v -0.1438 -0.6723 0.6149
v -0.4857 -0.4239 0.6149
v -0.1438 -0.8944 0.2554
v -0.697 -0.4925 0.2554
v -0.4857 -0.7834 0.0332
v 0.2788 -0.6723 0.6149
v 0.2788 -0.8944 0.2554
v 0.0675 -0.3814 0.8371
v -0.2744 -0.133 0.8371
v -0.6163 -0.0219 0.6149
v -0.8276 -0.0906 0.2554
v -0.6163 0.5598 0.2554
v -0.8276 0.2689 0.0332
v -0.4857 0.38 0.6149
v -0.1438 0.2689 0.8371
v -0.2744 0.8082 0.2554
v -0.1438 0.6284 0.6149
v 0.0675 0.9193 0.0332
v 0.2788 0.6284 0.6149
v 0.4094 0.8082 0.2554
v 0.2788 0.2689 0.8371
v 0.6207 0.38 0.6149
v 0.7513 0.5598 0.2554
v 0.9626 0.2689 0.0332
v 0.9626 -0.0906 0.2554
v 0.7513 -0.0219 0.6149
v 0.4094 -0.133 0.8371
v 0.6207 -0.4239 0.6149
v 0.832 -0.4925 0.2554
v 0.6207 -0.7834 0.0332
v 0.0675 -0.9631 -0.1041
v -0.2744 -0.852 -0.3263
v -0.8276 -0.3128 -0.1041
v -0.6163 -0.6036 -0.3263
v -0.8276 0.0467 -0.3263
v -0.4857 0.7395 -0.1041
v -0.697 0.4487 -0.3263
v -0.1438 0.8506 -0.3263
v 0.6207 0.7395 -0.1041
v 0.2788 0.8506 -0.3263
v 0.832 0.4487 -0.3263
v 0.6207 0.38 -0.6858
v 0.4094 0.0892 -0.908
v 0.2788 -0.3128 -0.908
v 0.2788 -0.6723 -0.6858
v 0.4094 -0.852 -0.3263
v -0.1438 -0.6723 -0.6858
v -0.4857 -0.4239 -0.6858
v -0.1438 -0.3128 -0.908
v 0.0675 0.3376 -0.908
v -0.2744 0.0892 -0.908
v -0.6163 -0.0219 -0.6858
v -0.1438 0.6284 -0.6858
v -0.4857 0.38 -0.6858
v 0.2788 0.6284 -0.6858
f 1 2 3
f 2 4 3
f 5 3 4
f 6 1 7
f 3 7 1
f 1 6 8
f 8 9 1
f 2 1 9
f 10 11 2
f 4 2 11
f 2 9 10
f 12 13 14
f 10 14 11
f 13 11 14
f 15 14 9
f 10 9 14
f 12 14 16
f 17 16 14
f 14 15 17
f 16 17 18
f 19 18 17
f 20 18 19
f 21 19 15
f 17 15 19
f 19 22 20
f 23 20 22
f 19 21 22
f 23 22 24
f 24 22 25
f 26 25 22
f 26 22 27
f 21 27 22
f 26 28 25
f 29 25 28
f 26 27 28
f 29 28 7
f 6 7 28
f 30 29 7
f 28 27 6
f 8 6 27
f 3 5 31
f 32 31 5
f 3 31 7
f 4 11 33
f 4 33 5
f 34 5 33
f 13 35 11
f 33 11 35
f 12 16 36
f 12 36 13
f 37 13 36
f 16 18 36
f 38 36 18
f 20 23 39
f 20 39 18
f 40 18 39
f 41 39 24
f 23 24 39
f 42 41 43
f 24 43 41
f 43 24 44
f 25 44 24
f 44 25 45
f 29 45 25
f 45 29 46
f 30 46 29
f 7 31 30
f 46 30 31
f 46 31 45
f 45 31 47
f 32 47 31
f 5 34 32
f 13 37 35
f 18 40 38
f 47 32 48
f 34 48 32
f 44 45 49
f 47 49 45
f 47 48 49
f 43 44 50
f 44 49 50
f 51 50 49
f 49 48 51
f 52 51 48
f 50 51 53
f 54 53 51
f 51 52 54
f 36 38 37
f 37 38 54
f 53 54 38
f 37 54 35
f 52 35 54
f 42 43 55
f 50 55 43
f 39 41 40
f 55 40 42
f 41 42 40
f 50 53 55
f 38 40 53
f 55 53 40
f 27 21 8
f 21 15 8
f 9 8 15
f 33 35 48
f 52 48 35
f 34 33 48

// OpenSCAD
polyhedron( points = [[-0.14383463550094, -0.672264459144761, 0.614867716701797], [-0.485739056159393, -0.423856356985835, 0.614867716701797], [-0.616334924165827, -0.0219236046445405, 0.614867716701797], [-0.485739056734837, 0.380009147685025, 0.614867716701797], [-0.143834636432028, 0.628417249813249, 0.614867716701797], [0.278782469097973, 0.628417249813253, 0.614867716701797], [0.620686889778729, 0.380009147685025, 0.614867716701797], [0.751282757821255, -0.0219236046445405, 0.614867716701797], [0.62068689042636, -0.423856356985833, 0.614867716701797], [0.278782470145854, -0.672264459144761, 0.614867716701797], [-0.143834635481966, -0.894447420306138, 0.255368134179356], [-0.697047608969308, -0.492514667967714, 0.255368134171024], [-0.827643476632806, -0.090581915508612, 0.255368134124437], [-0.616334923708754, 0.559758938758966, 0.255368134157141], [-0.274430503163161, 0.808167040719102, 0.255368134124437], [0.409378338011287, 0.808167040641345, 0.255368134157141], [0.751282758490414, 0.559758938589729, 0.255368134124437], [0.962591311266567, -0.0905819157259048, 0.255368134157141], [0.831995443504266, -0.492514667851765, 0.255368134124437], [0.278782470099137, -0.894447420291553, 0.255368134202956], [0.0674739172175376, -0.963105730544182, -0.104131448510276], [-0.485739056188848, -0.783355939795124, 0.0331851732831192], [-0.827643476452742, 0.268917667120935, 0.0331851731611519], [0.0674739174684475, 0.919258521129905, 0.0331851731511231], [0.962591311277517, 0.268917666782719, 0.0331851731511231], [0.620686890623076, -0.783355939590419, 0.0331851731511231], [-0.274430503315598, -0.852014250606478, -0.326314409171933], [-0.143834635429123, -0.672264459283445, -0.685813991645294], [-0.143834635269011, -0.312764876636926, -0.907996952581115], [-0.274430502896416, 0.0891678757110979, -0.907996952627705], [-0.485739055670713, 0.380009147563966, -0.685813991767257], [-0.697047608550127, 0.448667458411264, -0.326314409322694], [0.409378337653098, -0.852014249406978, -0.326314409410103], [0.278782469676423, -0.672264457712692, -0.685813991657816], [0.278782469682665, -0.312764876830352, -0.907996952584686], [0.409378337498196, 0.0891678753720491, -0.907996952740083], [0.620686890436693, 0.380009147154556, -0.685813991943704], [0.83199544343666, 0.448667457999322, -0.326314409390997], [0.0674739158080597, 0.33757597952881, -0.907996951073247], [-0.143834637284508, 0.628417250640839, -0.685813989603288], [0.278782469856954, 0.628417249366902, -0.685813992036227], [-0.143834635272372, 0.850600209991965, -0.326314409239975], [0.278782470394991, 0.850600210872441, -0.326314409342552], [0.620686890942553, 0.739508730382347, -0.104131448198693], [-0.485739056420119, 0.739508730293356, -0.104131448198693], [0.0674739173334108, -0.381423186929003, 0.837050677334625], [0.409378337372328, -0.133015085141346, 0.837050677567267], [0.278782469334761, 0.268917667131297, 0.837050677567267], [-0.143834636139567, 0.268917667118416, 0.837050677567268], [-0.274430503262409, -0.13301508492423, 0.8370506772803], [-0.827643476261038, -0.31276487615108, -0.104131448609566], [-0.827643476362124, 0.0467347061330975, -0.326314409344818], [-0.616334923508455, -0.0219236047173532, -0.685813991738468], [-0.48573905590373, -0.423856357014211, -0.685813991680362], [-0.616334923519286, -0.603606147925211, -0.326314409335296]], faces = [[0, 1, 11, 21, 10], [0, 10, 19, 9], [0, 9, 45], [0, 45, 49, 1], [1, 2, 12, 11], [1, 49, 2], [2, 3, 13, 22, 12], [2, 49, 48, 3], [3, 4, 14, 13], [3, 48, 4], [4, 5, 15, 23, 14], [4, 48, 47, 5], [5, 6, 16, 15], [5, 47, 6], [6, 7, 17, 24, 16], [6, 47, 46, 7], [7, 8, 18, 17], [7, 46, 8], [8, 9, 19, 25, 18], [8, 46, 45, 9], [10, 21, 26, 20], [10, 20, 19], [11, 12, 50], [11, 50, 54, 21], [12, 22, 51, 50], [13, 14, 44], [13, 44, 31, 22], [14, 23, 41, 44], [15, 16, 43], [15, 43, 42, 23], [16, 24, 37, 43], [17, 18, 25, 32, 33, 34, 35, 36, 37, 24], [19, 20, 32, 25], [20, 26, 27, 33, 32], [21, 54, 26], [22, 31, 51], [23, 42, 41], [26, 54, 53, 27], [27, 28, 34, 33], [27, 53, 28], [28, 29, 38, 35, 34], [28, 53, 52, 29], [29, 30, 39, 38], [29, 52, 30], [30, 31, 44, 41, 39], [30, 52, 51, 31], [35, 38, 40, 36], [36, 40, 42, 43, 37], [38, 39, 40], [39, 41, 42, 40], [45, 46, 47, 48, 49], [50, 51, 52, 53, 54]]);
